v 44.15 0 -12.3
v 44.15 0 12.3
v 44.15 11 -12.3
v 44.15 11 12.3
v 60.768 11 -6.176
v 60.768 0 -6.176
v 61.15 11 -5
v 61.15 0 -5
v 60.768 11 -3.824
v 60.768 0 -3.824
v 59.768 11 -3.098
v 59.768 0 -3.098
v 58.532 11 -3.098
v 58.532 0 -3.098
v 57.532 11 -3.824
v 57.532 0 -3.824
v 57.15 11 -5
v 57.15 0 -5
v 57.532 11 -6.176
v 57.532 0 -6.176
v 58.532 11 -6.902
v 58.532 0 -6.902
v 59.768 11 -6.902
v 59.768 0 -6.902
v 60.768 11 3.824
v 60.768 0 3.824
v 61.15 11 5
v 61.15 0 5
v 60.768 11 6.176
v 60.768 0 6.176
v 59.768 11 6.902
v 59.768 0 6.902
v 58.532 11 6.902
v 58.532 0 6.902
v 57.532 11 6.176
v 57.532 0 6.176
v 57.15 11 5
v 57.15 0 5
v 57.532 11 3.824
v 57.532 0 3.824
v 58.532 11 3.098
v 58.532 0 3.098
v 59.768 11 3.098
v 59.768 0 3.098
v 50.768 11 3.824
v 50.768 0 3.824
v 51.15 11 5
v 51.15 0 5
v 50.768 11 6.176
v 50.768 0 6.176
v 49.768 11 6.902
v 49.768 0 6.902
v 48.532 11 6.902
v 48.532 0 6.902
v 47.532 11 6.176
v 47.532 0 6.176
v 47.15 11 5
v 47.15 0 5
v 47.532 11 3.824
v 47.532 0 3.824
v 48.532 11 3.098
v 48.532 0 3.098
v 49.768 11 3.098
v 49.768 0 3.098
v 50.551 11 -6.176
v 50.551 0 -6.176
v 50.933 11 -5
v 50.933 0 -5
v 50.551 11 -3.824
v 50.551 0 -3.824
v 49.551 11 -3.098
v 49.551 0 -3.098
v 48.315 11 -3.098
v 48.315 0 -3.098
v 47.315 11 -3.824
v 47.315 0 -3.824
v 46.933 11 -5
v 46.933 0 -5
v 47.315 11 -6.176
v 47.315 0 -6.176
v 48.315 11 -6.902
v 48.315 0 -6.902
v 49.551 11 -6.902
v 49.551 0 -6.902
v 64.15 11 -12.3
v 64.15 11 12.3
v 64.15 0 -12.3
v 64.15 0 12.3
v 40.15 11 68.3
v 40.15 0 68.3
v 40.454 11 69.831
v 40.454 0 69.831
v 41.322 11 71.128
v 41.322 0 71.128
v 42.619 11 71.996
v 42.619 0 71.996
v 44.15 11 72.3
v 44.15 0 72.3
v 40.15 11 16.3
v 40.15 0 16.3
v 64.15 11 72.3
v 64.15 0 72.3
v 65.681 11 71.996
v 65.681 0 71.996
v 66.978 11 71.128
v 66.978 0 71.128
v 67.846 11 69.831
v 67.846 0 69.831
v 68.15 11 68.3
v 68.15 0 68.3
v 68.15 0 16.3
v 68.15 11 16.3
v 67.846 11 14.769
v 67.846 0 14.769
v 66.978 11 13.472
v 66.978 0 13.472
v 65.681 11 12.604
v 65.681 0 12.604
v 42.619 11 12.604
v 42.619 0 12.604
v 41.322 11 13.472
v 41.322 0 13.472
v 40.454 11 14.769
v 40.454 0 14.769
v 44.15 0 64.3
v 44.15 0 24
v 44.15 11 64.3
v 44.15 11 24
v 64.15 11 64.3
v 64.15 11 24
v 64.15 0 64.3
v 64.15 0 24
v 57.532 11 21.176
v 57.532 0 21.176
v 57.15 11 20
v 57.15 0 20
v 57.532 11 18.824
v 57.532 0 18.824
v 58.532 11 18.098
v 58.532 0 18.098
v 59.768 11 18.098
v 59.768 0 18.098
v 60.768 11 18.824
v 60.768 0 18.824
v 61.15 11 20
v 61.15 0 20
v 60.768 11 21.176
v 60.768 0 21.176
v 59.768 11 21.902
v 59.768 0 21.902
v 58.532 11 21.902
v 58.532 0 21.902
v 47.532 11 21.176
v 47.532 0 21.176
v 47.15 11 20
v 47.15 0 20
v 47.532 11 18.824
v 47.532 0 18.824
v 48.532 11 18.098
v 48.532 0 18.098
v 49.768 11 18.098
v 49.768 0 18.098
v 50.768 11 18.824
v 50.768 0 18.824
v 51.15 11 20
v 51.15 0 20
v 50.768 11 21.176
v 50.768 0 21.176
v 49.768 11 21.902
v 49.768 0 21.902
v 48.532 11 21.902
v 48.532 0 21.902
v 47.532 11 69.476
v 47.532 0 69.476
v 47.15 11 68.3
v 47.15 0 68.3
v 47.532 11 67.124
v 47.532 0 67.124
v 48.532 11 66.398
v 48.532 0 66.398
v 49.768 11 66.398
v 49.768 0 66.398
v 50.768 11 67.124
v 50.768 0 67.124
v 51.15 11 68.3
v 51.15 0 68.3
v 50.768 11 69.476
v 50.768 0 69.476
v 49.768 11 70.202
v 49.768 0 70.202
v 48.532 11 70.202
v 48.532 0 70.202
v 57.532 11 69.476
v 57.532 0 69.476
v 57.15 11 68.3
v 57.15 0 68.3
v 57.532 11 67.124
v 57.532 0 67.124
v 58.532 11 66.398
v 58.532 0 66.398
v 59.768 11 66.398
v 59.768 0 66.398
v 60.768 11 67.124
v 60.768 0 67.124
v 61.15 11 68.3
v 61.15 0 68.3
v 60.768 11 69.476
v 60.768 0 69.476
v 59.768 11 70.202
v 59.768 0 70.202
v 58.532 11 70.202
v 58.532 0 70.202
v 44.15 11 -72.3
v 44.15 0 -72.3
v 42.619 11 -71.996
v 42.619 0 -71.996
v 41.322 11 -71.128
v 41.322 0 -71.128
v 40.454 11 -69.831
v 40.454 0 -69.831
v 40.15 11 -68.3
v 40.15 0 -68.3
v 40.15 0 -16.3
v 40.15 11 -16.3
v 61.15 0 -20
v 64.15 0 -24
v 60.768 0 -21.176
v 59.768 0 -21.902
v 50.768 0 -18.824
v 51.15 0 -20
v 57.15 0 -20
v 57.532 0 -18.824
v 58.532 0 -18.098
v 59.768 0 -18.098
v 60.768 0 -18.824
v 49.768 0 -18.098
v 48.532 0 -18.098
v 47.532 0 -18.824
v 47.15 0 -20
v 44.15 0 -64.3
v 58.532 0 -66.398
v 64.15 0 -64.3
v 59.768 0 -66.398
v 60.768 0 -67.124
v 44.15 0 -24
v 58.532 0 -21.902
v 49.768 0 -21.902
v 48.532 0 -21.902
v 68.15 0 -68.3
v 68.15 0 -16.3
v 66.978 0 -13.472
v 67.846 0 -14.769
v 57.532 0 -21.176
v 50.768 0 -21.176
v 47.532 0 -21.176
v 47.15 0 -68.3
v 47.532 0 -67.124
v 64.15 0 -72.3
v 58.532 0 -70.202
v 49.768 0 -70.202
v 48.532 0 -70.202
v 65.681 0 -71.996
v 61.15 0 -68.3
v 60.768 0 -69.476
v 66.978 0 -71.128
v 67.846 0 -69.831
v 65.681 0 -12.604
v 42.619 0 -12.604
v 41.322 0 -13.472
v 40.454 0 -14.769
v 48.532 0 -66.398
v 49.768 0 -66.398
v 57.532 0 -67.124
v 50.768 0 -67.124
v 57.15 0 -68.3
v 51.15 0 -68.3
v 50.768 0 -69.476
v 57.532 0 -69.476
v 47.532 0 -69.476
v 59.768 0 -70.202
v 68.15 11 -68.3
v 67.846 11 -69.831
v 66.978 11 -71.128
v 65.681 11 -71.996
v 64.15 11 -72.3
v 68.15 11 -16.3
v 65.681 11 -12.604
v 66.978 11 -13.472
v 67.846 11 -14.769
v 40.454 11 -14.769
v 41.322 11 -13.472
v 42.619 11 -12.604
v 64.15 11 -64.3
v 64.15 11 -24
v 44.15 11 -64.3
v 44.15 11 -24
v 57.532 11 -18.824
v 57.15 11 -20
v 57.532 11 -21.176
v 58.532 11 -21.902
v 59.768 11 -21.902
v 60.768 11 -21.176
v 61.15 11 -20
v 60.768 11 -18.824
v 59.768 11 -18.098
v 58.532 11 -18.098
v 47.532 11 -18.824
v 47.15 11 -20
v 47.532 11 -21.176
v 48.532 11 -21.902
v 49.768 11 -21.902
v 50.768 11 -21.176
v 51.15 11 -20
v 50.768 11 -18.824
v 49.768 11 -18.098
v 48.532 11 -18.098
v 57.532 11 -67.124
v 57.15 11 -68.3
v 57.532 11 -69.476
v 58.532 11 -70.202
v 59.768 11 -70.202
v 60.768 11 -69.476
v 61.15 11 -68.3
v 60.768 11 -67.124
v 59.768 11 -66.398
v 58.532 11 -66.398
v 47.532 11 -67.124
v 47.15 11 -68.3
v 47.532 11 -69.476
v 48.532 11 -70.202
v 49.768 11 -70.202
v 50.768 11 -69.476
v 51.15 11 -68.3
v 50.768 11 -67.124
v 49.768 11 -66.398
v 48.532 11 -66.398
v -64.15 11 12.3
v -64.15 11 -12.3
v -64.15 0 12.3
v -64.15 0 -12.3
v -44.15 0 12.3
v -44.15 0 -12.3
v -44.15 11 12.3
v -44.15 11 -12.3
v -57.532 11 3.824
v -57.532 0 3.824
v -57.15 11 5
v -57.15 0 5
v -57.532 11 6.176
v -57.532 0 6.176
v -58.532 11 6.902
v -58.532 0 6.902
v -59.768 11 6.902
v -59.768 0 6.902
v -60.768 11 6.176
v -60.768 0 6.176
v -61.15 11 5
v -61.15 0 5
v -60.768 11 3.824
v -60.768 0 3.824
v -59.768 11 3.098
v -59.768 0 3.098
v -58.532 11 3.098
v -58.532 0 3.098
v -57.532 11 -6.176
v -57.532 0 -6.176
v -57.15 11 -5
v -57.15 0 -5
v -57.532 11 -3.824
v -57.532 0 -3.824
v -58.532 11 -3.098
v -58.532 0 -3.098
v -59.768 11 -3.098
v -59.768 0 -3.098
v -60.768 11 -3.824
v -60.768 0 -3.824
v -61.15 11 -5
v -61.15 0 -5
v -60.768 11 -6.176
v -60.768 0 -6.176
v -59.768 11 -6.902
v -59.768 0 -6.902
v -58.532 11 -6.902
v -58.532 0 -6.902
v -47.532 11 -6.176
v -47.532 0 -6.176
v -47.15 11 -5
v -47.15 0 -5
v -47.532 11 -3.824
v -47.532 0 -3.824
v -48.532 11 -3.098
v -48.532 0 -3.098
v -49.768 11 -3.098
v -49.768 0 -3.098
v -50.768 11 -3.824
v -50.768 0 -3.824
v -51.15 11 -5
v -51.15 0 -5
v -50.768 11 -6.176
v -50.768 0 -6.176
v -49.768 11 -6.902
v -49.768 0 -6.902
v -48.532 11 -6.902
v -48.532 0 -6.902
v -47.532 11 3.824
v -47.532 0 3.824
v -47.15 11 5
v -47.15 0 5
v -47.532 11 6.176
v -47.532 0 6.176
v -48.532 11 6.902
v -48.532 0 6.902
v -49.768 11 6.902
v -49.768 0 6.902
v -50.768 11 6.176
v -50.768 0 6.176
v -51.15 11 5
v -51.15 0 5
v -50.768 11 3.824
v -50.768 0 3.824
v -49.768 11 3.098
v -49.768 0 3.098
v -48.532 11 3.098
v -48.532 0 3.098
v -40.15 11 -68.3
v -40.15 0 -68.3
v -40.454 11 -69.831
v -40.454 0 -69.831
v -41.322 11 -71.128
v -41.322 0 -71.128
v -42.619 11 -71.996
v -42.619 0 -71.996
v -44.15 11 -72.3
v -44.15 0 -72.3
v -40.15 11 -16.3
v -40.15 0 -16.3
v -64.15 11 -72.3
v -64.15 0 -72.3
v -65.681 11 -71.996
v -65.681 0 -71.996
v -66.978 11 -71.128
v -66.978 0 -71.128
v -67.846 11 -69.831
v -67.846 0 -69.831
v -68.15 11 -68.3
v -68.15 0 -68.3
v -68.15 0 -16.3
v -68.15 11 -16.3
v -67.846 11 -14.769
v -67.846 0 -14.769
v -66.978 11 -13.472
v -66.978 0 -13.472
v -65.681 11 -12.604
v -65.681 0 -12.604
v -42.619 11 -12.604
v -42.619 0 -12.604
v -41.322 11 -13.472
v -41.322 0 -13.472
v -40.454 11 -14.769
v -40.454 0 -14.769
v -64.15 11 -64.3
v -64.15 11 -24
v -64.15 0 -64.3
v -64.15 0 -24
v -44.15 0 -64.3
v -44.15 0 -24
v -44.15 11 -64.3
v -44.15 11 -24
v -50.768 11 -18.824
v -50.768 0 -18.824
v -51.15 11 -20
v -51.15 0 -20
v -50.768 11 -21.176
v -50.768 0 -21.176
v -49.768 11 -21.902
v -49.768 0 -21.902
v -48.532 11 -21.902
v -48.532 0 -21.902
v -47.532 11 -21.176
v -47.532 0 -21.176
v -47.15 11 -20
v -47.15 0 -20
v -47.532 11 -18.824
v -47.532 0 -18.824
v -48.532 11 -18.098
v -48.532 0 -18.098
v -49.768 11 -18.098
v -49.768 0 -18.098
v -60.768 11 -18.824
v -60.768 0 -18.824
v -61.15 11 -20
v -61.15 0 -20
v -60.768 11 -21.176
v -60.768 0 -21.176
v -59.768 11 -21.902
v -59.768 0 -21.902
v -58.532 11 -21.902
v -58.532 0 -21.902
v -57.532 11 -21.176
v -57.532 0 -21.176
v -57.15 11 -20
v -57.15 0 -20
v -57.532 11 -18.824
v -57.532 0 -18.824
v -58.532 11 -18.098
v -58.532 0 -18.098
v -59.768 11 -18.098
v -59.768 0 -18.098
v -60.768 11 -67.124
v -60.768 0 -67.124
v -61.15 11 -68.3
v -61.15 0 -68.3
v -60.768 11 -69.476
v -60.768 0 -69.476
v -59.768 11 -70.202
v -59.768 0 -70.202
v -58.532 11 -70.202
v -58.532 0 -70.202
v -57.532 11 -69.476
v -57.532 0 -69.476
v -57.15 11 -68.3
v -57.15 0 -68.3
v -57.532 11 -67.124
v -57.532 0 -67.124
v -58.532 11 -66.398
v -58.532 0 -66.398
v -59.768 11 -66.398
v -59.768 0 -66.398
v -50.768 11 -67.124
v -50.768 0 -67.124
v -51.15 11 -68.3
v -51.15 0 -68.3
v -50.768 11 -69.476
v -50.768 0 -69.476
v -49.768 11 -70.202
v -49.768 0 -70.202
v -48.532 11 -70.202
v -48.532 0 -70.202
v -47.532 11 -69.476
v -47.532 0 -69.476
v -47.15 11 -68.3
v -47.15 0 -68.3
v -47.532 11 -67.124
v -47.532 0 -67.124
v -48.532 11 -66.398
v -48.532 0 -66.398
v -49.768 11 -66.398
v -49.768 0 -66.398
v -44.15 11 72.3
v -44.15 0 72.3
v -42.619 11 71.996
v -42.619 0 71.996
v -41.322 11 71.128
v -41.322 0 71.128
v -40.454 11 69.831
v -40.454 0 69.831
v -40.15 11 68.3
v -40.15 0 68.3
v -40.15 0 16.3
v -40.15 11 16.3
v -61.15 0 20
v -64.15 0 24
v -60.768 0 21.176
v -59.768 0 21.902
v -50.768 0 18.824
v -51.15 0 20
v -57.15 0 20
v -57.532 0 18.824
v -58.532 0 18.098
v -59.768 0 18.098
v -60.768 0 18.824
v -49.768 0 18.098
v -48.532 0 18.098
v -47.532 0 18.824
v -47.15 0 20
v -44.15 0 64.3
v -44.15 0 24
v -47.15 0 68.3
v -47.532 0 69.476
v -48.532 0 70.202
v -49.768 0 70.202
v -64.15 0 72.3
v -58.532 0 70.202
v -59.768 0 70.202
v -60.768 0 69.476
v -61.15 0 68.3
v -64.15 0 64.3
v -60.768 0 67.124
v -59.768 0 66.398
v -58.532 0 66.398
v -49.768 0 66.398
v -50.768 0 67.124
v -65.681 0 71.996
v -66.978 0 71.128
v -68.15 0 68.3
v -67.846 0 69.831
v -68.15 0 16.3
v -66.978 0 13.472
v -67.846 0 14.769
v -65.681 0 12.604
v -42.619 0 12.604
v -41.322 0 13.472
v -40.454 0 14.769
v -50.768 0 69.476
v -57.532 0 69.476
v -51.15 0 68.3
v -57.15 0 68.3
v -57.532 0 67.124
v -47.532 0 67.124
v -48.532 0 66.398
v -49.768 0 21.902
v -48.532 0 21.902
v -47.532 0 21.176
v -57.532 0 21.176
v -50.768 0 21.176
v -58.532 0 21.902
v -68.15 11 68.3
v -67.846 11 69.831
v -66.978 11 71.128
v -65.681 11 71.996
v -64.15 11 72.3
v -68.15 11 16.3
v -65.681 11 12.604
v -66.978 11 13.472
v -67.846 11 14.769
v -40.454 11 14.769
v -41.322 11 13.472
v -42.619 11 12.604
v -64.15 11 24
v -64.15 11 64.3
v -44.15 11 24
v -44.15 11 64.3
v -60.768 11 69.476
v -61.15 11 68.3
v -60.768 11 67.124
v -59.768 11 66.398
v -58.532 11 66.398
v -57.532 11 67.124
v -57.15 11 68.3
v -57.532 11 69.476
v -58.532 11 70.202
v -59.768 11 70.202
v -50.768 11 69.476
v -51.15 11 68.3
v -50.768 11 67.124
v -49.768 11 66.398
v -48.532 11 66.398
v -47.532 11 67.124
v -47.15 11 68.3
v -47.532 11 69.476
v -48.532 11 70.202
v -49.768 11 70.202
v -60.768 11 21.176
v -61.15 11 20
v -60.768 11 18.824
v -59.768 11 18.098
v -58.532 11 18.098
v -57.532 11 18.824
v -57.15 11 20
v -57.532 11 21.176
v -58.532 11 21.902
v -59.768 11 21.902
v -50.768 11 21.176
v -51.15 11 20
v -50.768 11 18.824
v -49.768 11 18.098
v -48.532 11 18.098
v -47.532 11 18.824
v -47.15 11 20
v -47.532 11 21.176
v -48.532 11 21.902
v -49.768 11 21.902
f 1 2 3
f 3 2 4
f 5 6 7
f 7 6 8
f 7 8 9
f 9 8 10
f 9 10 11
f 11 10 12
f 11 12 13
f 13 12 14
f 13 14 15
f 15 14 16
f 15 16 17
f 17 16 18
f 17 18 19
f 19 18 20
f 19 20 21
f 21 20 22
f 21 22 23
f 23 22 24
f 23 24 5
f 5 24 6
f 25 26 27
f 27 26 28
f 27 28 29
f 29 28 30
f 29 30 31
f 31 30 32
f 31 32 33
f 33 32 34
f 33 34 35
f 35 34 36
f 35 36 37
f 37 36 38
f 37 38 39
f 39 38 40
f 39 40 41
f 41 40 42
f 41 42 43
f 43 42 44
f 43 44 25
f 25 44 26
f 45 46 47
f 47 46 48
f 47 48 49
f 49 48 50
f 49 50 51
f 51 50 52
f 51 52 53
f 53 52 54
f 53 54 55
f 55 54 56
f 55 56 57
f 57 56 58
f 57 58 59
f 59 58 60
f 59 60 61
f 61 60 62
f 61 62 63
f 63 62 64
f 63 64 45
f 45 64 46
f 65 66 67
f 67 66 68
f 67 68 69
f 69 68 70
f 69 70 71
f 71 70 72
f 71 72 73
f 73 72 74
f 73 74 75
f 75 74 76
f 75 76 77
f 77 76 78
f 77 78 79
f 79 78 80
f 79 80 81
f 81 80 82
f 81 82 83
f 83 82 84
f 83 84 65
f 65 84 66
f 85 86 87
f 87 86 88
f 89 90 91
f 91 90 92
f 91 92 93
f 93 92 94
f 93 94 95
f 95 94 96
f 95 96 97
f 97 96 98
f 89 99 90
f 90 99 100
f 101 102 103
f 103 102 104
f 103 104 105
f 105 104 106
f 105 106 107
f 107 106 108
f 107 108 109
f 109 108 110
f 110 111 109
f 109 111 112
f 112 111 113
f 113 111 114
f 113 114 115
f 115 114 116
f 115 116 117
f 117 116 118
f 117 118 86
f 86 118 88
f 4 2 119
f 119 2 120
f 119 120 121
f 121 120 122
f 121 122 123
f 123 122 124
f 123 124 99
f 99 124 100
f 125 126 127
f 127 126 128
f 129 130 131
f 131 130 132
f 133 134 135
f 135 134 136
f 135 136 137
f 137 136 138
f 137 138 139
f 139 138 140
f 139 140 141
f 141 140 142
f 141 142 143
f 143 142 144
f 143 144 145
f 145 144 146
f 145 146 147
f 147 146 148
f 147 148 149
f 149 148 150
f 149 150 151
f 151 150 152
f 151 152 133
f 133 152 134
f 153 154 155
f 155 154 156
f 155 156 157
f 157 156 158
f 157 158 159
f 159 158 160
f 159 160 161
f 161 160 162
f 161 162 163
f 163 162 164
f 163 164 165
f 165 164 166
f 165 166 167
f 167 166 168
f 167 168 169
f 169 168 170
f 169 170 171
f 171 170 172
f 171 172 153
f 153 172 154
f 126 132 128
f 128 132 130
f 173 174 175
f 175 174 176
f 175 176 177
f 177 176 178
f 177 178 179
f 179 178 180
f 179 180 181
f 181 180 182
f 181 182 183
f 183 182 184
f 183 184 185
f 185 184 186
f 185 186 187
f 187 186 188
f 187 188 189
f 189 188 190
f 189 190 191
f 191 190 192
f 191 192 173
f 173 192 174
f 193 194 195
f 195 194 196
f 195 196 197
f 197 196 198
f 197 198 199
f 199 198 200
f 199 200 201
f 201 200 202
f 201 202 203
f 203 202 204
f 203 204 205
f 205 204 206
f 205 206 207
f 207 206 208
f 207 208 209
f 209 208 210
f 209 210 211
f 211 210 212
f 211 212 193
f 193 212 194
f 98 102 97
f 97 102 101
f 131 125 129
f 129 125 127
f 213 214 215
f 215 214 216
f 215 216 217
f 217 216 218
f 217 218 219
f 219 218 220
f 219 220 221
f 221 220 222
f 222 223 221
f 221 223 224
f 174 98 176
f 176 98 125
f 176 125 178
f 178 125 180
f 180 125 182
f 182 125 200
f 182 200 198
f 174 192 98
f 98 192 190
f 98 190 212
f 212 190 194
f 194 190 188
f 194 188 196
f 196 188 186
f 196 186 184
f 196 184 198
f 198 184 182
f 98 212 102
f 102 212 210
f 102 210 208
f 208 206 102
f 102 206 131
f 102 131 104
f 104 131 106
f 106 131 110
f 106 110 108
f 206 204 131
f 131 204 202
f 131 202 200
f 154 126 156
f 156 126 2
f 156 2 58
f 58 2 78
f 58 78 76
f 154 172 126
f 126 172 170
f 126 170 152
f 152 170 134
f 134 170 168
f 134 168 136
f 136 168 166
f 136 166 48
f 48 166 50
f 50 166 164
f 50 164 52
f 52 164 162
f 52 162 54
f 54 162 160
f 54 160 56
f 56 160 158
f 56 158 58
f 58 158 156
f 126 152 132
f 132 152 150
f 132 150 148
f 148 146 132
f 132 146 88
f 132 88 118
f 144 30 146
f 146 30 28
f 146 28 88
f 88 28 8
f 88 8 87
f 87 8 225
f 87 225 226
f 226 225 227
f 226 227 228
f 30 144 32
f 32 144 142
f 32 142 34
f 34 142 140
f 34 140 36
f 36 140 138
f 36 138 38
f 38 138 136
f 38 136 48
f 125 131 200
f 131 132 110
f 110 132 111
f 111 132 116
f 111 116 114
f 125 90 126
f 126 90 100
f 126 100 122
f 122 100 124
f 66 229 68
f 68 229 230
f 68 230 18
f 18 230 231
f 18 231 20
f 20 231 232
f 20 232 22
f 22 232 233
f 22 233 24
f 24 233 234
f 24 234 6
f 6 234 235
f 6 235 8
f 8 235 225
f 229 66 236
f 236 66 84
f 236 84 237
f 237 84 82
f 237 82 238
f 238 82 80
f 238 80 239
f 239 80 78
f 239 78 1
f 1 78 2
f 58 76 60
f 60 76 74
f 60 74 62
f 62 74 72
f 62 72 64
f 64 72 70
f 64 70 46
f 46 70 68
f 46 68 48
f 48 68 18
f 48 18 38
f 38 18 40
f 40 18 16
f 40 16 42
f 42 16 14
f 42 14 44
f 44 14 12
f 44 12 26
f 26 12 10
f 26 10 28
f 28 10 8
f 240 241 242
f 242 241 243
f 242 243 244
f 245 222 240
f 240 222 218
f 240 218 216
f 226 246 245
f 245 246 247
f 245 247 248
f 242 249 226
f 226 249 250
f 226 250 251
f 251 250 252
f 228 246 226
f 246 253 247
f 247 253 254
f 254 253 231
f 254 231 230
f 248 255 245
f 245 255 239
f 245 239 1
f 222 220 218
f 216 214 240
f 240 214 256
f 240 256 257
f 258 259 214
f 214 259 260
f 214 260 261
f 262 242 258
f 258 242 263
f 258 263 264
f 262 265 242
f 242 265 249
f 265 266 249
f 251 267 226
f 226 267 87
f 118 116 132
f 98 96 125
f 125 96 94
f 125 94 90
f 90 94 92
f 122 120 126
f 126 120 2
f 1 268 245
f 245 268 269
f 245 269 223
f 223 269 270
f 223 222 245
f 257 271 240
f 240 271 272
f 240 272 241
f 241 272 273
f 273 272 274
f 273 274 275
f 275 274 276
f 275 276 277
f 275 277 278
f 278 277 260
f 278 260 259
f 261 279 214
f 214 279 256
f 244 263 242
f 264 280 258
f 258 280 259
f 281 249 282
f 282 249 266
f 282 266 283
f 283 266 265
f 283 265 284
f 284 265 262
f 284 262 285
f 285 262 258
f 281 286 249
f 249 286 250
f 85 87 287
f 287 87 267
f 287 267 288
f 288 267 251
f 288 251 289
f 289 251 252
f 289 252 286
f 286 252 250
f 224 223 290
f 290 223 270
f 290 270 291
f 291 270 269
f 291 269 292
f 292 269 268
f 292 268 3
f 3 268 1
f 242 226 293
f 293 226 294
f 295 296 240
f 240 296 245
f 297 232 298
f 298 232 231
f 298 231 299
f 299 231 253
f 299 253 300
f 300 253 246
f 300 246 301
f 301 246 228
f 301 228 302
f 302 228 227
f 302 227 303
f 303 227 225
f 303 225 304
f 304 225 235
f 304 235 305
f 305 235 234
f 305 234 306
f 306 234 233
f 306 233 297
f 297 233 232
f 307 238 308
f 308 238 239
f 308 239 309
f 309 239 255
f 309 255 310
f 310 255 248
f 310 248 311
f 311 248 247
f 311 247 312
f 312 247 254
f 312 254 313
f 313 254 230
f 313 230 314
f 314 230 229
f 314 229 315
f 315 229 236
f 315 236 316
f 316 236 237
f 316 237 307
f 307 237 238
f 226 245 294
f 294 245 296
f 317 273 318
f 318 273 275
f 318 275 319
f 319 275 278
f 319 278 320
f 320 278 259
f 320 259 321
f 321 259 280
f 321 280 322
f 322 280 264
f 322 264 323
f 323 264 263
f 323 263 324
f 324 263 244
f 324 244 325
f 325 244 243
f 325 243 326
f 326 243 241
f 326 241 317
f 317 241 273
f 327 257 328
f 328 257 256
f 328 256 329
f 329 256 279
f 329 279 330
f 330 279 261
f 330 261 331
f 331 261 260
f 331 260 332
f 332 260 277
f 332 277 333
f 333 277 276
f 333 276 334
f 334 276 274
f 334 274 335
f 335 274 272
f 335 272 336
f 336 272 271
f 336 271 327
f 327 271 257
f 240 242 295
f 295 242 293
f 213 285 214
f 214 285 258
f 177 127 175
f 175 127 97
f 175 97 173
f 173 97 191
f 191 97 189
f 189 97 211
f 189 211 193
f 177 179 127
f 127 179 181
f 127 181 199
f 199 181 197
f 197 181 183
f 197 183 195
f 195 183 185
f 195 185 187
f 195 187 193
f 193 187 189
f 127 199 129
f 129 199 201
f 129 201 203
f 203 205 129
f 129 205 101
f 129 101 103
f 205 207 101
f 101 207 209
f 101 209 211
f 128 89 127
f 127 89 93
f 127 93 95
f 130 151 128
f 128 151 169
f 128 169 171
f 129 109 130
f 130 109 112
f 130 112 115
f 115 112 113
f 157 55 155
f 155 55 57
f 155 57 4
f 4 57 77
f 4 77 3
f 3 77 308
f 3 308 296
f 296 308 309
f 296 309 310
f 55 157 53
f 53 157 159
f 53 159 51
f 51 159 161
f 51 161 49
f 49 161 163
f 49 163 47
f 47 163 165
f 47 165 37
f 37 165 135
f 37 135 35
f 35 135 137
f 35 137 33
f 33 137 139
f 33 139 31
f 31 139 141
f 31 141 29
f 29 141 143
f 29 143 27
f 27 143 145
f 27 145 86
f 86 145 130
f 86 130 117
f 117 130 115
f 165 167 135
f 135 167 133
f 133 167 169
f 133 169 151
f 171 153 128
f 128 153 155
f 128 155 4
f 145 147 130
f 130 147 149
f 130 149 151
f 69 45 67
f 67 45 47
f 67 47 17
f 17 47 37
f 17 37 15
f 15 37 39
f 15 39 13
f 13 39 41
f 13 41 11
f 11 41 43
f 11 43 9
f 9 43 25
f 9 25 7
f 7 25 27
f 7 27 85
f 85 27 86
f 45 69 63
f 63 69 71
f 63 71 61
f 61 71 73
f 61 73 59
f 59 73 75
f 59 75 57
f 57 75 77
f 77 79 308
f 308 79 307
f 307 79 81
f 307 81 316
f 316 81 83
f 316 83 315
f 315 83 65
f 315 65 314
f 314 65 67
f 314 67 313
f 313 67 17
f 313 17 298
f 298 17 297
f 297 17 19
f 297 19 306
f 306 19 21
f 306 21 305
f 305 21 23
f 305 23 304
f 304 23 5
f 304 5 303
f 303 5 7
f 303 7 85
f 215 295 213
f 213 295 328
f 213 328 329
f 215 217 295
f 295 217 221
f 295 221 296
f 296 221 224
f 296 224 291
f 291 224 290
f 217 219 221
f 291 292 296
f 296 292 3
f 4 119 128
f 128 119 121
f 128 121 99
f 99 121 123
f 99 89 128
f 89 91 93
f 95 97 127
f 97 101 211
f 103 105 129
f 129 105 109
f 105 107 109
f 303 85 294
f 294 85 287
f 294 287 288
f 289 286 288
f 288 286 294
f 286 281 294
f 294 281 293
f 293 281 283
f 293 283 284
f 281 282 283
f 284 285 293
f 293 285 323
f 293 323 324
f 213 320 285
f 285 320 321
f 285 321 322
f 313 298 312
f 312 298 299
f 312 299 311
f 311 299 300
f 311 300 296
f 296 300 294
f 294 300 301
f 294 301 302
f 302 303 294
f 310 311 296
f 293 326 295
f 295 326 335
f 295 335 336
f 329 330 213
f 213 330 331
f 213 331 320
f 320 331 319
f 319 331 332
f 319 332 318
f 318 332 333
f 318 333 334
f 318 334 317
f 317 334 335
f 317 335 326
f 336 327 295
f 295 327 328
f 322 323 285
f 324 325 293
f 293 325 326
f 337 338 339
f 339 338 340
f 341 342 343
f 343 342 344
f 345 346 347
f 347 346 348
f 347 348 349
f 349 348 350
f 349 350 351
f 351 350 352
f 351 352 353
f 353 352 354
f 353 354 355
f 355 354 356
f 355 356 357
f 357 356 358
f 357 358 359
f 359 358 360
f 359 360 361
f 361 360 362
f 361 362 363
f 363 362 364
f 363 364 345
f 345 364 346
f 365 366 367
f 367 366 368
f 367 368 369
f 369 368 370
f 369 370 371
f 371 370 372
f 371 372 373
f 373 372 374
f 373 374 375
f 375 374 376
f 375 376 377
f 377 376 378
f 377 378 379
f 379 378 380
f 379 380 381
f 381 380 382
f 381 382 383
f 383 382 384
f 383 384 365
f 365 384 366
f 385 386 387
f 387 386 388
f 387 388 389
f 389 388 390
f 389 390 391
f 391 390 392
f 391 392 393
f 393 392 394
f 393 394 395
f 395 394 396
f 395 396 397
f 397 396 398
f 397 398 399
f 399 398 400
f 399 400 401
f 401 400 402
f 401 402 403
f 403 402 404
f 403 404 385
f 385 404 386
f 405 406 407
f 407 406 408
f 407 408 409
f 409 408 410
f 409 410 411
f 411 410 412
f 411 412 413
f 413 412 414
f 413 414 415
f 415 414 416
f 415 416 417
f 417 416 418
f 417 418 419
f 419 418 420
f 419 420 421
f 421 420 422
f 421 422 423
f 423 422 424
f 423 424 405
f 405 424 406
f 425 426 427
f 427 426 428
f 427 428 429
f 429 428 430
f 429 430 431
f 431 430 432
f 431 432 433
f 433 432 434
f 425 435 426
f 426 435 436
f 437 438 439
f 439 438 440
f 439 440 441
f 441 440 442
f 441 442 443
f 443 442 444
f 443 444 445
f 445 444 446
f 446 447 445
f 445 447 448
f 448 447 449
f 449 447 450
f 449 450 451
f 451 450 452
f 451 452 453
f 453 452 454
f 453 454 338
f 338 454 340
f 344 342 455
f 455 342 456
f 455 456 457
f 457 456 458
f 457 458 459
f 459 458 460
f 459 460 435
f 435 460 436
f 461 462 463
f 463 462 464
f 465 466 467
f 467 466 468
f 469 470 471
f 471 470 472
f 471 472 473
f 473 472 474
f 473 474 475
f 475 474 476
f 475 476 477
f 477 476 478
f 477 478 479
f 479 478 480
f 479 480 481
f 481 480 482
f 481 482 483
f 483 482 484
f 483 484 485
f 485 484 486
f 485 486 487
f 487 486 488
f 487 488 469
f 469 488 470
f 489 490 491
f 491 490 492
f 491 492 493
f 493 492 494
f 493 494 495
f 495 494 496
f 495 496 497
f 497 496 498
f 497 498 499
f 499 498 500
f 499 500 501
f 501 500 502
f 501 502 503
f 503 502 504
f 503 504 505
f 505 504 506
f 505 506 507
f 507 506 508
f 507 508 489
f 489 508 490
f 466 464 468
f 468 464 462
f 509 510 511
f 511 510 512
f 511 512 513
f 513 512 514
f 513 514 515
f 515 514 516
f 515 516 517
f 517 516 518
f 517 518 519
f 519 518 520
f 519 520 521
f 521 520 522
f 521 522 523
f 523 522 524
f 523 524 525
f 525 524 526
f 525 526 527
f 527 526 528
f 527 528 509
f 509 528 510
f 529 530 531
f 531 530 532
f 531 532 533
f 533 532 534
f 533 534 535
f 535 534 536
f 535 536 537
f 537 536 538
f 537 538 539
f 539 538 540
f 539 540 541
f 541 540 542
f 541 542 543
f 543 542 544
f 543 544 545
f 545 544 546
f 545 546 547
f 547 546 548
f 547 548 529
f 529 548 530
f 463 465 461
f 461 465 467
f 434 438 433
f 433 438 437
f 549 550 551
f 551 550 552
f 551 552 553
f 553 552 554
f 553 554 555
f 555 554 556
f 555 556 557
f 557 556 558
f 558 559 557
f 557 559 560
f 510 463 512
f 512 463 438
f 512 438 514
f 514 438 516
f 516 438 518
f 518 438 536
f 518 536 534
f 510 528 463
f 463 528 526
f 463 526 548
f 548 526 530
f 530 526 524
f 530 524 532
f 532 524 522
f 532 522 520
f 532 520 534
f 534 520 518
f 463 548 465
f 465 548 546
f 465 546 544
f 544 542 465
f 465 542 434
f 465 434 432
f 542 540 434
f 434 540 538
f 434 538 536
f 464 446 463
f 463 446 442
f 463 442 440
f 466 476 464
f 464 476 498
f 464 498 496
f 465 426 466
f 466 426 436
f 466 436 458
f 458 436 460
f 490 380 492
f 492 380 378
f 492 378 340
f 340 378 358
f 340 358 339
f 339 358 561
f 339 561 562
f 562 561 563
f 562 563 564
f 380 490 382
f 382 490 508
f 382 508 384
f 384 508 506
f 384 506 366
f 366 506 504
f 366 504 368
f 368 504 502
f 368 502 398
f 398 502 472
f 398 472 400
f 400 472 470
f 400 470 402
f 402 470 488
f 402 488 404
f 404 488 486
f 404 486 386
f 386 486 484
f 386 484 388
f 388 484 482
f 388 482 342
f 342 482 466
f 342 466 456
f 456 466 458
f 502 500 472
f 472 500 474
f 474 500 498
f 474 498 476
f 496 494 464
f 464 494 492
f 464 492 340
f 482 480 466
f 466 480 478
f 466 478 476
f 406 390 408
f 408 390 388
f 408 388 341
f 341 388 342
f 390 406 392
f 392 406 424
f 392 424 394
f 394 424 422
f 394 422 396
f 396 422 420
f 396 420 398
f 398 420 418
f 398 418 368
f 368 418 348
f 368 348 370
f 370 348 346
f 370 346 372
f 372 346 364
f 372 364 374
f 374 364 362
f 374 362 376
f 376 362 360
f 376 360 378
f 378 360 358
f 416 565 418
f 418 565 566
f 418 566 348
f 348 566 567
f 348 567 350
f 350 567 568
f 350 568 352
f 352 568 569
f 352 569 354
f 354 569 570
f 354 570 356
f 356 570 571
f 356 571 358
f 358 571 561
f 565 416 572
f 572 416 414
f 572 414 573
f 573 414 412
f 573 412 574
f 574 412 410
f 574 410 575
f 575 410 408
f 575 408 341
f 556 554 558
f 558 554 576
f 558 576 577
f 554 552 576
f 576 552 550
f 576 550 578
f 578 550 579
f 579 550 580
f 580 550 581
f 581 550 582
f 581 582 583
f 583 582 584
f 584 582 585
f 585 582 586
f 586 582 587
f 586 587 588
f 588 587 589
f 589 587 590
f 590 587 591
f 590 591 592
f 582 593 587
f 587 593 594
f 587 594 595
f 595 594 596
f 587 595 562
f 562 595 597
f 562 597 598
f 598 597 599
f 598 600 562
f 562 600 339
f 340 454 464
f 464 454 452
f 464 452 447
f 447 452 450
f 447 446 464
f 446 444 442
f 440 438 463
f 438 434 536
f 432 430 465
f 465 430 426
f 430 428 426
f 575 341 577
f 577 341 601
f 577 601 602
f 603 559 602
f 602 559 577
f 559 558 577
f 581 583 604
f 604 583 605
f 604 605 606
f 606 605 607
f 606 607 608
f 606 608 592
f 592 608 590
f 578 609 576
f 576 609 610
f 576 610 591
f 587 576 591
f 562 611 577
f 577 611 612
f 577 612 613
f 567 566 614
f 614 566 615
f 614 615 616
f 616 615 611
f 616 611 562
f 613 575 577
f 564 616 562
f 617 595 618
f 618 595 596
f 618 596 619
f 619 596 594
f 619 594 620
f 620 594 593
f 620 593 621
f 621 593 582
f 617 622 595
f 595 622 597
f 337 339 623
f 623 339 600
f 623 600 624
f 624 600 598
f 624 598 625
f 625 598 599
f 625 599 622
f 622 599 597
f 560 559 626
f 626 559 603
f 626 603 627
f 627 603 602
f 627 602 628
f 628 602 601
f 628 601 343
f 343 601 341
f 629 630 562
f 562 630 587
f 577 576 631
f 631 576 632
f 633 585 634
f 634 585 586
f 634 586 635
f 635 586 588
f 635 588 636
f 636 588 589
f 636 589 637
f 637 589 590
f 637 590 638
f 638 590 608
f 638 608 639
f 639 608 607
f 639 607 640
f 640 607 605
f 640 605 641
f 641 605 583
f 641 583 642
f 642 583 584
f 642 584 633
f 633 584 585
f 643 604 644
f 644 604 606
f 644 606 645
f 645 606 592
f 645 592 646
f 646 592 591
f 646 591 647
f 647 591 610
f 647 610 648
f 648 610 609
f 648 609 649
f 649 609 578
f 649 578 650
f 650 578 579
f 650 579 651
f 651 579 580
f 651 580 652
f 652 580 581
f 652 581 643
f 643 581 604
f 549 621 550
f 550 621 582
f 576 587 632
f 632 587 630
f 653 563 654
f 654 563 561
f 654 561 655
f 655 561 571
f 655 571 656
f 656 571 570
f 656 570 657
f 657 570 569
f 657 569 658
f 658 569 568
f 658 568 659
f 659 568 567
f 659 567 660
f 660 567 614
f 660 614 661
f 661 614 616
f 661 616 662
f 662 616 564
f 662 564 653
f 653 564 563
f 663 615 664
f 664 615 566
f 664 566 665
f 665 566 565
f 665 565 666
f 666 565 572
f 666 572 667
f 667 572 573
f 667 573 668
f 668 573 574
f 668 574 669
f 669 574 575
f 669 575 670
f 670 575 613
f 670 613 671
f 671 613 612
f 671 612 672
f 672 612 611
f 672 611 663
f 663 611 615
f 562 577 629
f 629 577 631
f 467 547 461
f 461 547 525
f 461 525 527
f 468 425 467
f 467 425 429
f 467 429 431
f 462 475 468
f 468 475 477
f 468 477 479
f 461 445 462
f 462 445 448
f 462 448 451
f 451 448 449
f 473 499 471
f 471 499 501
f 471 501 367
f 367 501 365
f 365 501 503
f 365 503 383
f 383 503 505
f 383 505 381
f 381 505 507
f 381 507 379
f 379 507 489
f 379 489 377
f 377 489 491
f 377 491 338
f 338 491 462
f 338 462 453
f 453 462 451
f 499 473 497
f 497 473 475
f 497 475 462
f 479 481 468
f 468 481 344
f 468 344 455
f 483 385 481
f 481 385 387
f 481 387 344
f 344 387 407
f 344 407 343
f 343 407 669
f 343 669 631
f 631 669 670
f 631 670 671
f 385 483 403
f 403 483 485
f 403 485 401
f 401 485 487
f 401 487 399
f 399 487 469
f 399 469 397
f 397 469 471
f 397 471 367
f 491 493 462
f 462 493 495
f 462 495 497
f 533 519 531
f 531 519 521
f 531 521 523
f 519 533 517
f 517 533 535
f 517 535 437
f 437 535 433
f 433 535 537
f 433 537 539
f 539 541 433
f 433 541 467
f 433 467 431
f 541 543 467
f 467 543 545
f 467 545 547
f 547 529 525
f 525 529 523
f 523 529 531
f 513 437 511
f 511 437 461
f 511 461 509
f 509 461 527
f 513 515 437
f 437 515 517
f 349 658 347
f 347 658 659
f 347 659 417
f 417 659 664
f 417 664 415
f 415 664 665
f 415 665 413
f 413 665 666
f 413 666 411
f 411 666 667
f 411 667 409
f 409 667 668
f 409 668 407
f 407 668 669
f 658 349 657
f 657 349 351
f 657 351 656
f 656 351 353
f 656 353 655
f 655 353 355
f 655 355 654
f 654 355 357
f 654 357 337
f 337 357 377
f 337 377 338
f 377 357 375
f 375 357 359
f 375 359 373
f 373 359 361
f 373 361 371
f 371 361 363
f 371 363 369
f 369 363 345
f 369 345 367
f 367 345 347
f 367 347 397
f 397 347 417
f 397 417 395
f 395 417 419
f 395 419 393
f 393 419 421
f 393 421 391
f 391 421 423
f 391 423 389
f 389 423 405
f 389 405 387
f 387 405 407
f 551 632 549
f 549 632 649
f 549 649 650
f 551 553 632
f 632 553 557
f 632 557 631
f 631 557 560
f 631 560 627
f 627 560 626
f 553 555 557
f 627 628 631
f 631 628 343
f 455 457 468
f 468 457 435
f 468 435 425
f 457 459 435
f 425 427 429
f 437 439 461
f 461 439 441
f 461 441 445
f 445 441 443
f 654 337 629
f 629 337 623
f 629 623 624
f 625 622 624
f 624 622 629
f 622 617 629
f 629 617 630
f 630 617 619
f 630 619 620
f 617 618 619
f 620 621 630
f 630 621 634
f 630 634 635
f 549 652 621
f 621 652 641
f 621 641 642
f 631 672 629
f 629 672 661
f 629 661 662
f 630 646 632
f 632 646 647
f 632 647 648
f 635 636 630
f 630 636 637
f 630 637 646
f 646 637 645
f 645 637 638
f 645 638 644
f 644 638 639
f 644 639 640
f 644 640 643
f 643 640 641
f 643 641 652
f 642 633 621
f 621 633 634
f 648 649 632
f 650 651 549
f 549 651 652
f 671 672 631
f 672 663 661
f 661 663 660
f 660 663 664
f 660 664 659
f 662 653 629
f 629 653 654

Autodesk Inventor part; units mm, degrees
ref_plane "YZ Plane" through (0, 0, 0) normal (1, 0, 0) x (0, 1, 0)
ref_plane "XZ Plane" through (0, 0, 0) normal (0, 1, 0) x (-1, 0, 0)
ref_plane "XY Plane" through (0, 0, 0) normal (0, 0, 1) x (1, 0, 0)
sketch "Sketch1" plane through (0, 0, 0) normal (0, 1, 0) x (-1, 0, 0)
  line L0 (0, 0) -> (54.15, 0)
  line L1 (54.15, 20) -> (54.15, -20)
  line L2 (49.15, -20) -> (59.15, -20)
  circle A0 centre (59.15, -20) radius 2
  circle A1 centre (49.15, -20) radius 2
  line L3 (59.15, -20) -> (49.15, -20)
  line L4 (49.15, -20) -> (49.15, -68.3)
  line L5 (49.15, -68.3) -> (59.15, -68.3)
  line L6 (59.15, -68.3) -> (59.15, -20)
  circle A2 centre (59.15, -68.3) radius 2
  circle A3 centre (49.15, -68.3) radius 2
  line L7 (59.15, -20) -> (64.15, -20)
  line L8 (64.15, -20) -> (64.15, -16)
  line L9 (64.15, -16) -> (59.15, -16)
  line L10 (59.15, -16) -> (59.15, -20)
  line L11 (49.15, -20) -> (44.15, -20)
  line L12 (44.15, -20) -> (44.15, -24)
  line L13 (44.15, -24) -> (49.15, -24)
  line L14 (49.15, -24) -> (49.15, -20)
  line L15 (64.15, -16) -> (44.15, -16)
  line L16 (44.15, -16) -> (44.15, -24)
  line L17 (44.15, -24) -> (64.15, -24)
  line L18 (64.15, -24) -> (64.15, -16)
  line L19 (59.15, -68.3) -> (64.15, -68.3)
  line L20 (64.15, -68.3) -> (64.15, -72.3)
  line L21 (64.15, -72.3) -> (59.15, -72.3)
  line L22 (59.15, -72.3) -> (59.15, -68.3)
  line L23 (49.15, -68.3) -> (44.15, -68.3)
  line L24 (44.15, -68.3) -> (44.15, -64.3)
  line L25 (44.15, -64.3) -> (49.15, -64.3)
  line L26 (49.15, -64.3) -> (49.15, -68.3)
  line L27 (44.15, -64.3) -> (64.15, -64.3)
  line L28 (64.15, -64.3) -> (64.15, -72.3)
  line L29 (64.15, -72.3) -> (44.15, -72.3)
  line L30 (44.15, -72.3) -> (44.15, -64.3)
  line L31 (54.15, -20) -> (54.15, -68.3)
  line L32 (54.15, -20) -> (54.15, 20)
  line L33 (49.15, 20) -> (59.15, 20)
  circle A4 centre (59.15, 20) radius 2
  circle A5 centre (49.15, 20) radius 2
  line L34 (59.15, 20) -> (49.15, 20)
  line L35 (49.15, 20) -> (49.15, 68.3)
  line L36 (49.15, 68.3) -> (59.15, 68.3)
  line L37 (59.15, 68.3) -> (59.15, 20)
  circle A6 centre (59.15, 68.3) radius 2
  circle A7 centre (49.15, 68.3) radius 2
  line L38 (59.15, 20) -> (64.15, 20)
  line L39 (64.15, 20) -> (64.15, 16)
  line L40 (64.15, 16) -> (59.15, 16)
  line L41 (59.15, 16) -> (59.15, 20)
  line L42 (49.15, 20) -> (44.15, 20)
  line L43 (44.15, 20) -> (44.15, 24)
  line L44 (44.15, 24) -> (49.15, 24)
  line L45 (49.15, 24) -> (49.15, 20)
  line L46 (64.15, 16) -> (44.15, 16)
  line L47 (44.15, 16) -> (44.15, 24)
  line L48 (44.15, 24) -> (64.15, 24)
  line L49 (64.15, 24) -> (64.15, 16)
  line L50 (59.15, 68.3) -> (64.15, 68.3)
  line L51 (64.15, 68.3) -> (64.15, 72.3)
  line L52 (64.15, 72.3) -> (59.15, 72.3)
  line L53 (59.15, 72.3) -> (59.15, 68.3)
  line L54 (49.15, 68.3) -> (44.15, 68.3)
  line L55 (44.15, 68.3) -> (44.15, 64.3)
  line L56 (44.15, 64.3) -> (49.15, 64.3)
  line L57 (49.15, 64.3) -> (49.15, 68.3)
  line L58 (44.15, 64.3) -> (64.15, 64.3)
  line L59 (64.15, 64.3) -> (64.15, 72.3)
  line L60 (64.15, 72.3) -> (44.15, 72.3)
  line L61 (44.15, 72.3) -> (44.15, 64.3)
  line L62 (54.15, 20) -> (54.15, 68.3)
  line L63 (0, 5) -> (0, -5)
  line L64 (0, 0) -> (-54.15, 0)
  line L65 (-54.15, 20) -> (-54.15, -20)
  line L66 (-49.15, -20) -> (-59.15, -20)
  circle A8 centre (-59.15, -20) radius 2
  circle A9 centre (-49.15, -20) radius 2
  line L67 (-59.15, -20) -> (-49.15, -20)
  line L68 (-49.15, -20) -> (-49.15, -68.3)
  line L69 (-49.15, -68.3) -> (-59.15, -68.3)
  line L70 (-59.15, -68.3) -> (-59.15, -20)
  circle A10 centre (-59.15, -68.3) radius 2
  circle A11 centre (-49.15, -68.3) radius 2
  line L71 (-59.15, -20) -> (-64.15, -20)
  line L72 (-64.15, -20) -> (-64.15, -16)
  line L73 (-64.15, -16) -> (-59.15, -16)
  line L74 (-59.15, -16) -> (-59.15, -20)
  line L75 (-49.15, -20) -> (-44.15, -20)
  line L76 (-44.15, -20) -> (-44.15, -24)
  line L77 (-44.15, -24) -> (-49.15, -24)
  line L78 (-49.15, -24) -> (-49.15, -20)
  line L79 (-64.15, -16) -> (-44.15, -16)
  line L80 (-44.15, -16) -> (-44.15, -24)
  line L81 (-44.15, -24) -> (-64.15, -24)
  line L82 (-64.15, -24) -> (-64.15, -16)
  line L83 (-59.15, -68.3) -> (-64.15, -68.3)
  line L84 (-64.15, -68.3) -> (-64.15, -72.3)
  line L85 (-64.15, -72.3) -> (-59.15, -72.3)
  line L86 (-59.15, -72.3) -> (-59.15, -68.3)
  line L87 (-49.15, -68.3) -> (-44.15, -68.3)
  line L88 (-44.15, -68.3) -> (-44.15, -64.3)
  line L89 (-44.15, -64.3) -> (-49.15, -64.3)
  line L90 (-49.15, -64.3) -> (-49.15, -68.3)
  line L91 (-44.15, -64.3) -> (-64.15, -64.3)
  line L92 (-64.15, -64.3) -> (-64.15, -72.3)
  line L93 (-64.15, -72.3) -> (-44.15, -72.3)
  line L94 (-44.15, -72.3) -> (-44.15, -64.3)
  line L95 (-54.15, -20) -> (-54.15, -68.3)
  circle A12 centre (-59.15, 20) radius 2
  line L96 (-64.15, 16) -> (-44.15, 16)
  line L97 (-44.15, 16) -> (-44.15, 24)
  circle A13 centre (-49.15, 20) radius 2
  line L98 (-49.15, 20) -> (-59.15, 20)
  line L99 (-59.15, 20) -> (-49.15, 20)
  line L100 (-44.15, 24) -> (-64.15, 24)
  line L101 (-44.15, 24) -> (-49.15, 24)
  line L102 (-44.15, 20) -> (-44.15, 24)
  line L103 (-59.15, 68.3) -> (-59.15, 20)
  line L104 (-54.15, 20) -> (-54.15, 68.3)
  line L105 (-49.15, 20) -> (-49.15, 68.3)
  line L106 (-49.15, 24) -> (-49.15, 20)
  line L107 (-59.15, 20) -> (-64.15, 20)
  line L108 (-59.15, 16) -> (-59.15, 20)
  line L109 (-64.15, 24) -> (-64.15, 16)
  line L110 (-64.15, 20) -> (-64.15, 16)
  line L111 (-64.15, 16) -> (-59.15, 16)
  line L112 (-49.15, 68.3) -> (-59.15, 68.3)
  circle A14 centre (-59.15, 68.3) radius 2
  circle A15 centre (-49.15, 68.3) radius 2
  line L113 (-44.15, 64.3) -> (-49.15, 64.3)
  line L114 (-44.15, 64.3) -> (-64.15, 64.3)
  line L115 (-44.15, 68.3) -> (-44.15, 64.3)
  line L116 (-49.15, 64.3) -> (-49.15, 68.3)
  line L117 (-59.15, 68.3) -> (-64.15, 68.3)
  line L118 (-44.15, 72.3) -> (-44.15, 64.3)
  line L119 (-59.15, 72.3) -> (-59.15, 68.3)
  line L120 (-64.15, 64.3) -> (-64.15, 72.3)
  line L121 (-64.15, 68.3) -> (-64.15, 72.3)
  line L122 (-64.15, 72.3) -> (-59.15, 72.3)
  line L123 (-64.15, 72.3) -> (-44.15, 72.3)
  line L124 (-49.15, 68.3) -> (-44.15, 68.3)
  line L125 (-49.15, 20) -> (-44.15, 20)
  line L126 (-54.15, -20) -> (-54.15, 20)
  point P0 (64.15, -20)
  point P1 (-49.15, 24)
  point P2 (-64.15, 20)
  dimension "d0" = 54.15
  dimension "d1" = 40
  dimension "d3" = 10
  dimension "d6" = 4
  dimension "d7" = 4
  dimension "d11" = 48.3
  dimension "d12" = 4
  dimension "d13" = 4
  dimension "d14" = 5
  dimension "d15" = 4
  dimension "d16" = 5
  dimension "d17" = 4
  dimension "d18" = 5
  dimension "d19" = 4
  dimension "d20" = 5
  dimension "d21" = 4
  dimension "d22" = 10
extrude "Extrusion1" add sketch "Sketch1" along normal blind 11 contours L46 L47 L42 A5 L33 L1 | L1 L33 A4 L41 L46 | L15 L10 A0 L2 L1 | L1 L2 A1 L11 L16 L15 | L79 L80 L75 A9 L66 L65 | L65 L66 A8 L74 L79 | L96 L108 A12 L98 L65 | L65 L98 A13 L125 L97 L96 | L62 L48 L37 A4 L33 | L33 A5 L35 L48 L62 | L41 A4 L38 L39 L40 | L31 L17 L4 A1 L2 | L2 A0 L6 L17 L31 | L9 L8 L7 A0 L10 | L104 L100 L105 A13 L98 | L98 A12 L103 L100 L104 | L96 L109 L107 A12 L108 | L95 L81 L70 A8 L66 | L66 A9 L68 L81 L95 | L74 A8 L71 L72 L73 | L43 L44 L35 A5 L42 | L11 A1 L4 L13 L12 | L125 A13 L105 L100 L97 | L76 L77 L68 A9 L75 | L37 L48 L49 L38 A4 | L62 L36 A6 L37 L58 | L58 L35 A7 L36 L62 | A0 L7 L18 L17 L6 | L31 L5 A3 L4 L27 | L27 L6 A2 L5 L31 | A12 L107 L109 L100 L103 | L114 L103 A14 L112 L104 | L104 L112 A15 L105 L114 | L70 L81 L82 L71 A8 | L95 L69 A10 L70 L91 | L91 L68 A11 L69 L95 | L56 L55 L54 A7 L35 | L37 A6 L50 L59 L58 | L36 A7 L54 L61 L60 L53 A6 | L4 A3 L23 L24 L25 | L27 L28 L19 A2 L6 | L5 A2 L22 L29 L30 L23 A3 | L105 A15 L124 L115 L113 | L114 L120 L117 A14 L103 | L112 A14 L119 L123 L118 L124 A15 | L89 L88 L87 A11 L68 | L70 A10 L83 L92 L91 | L69 A11 L87 L94 L93 L86 A10 | A6 L53 L52 L51 L50 | L19 L20 L21 L22 A2 | L117 L120 L122 L119 A14 | A10 L86 L85 L84 L83
sketch "Sketch4" plane through (0, 11, 0) normal (0, 1, 0) x (1, 0, 0)
  line L0 (64.15, 64.3) -> (64.15, 72.3) projected
  line L1 (64.15, 72.3) -> (68.15, 72.3)
  line L2 (68.15, 72.3) -> (68.15, 12.3)
  line L3 (68.15, 12.3) -> (64.15, 12.3)
  line L4 (64.15, 12.3) -> (64.15, 72.3)
  line L5 (44.15, 72.3) -> (44.15, 64.3) projected
  line L6 (44.15, 72.3) -> (40.15, 72.3)
  line L7 (40.15, 72.3) -> (40.15, 12.3)
  line L8 (40.15, 12.3) -> (44.15, 12.3)
  line L9 (44.15, 12.3) -> (44.15, 72.3)
  line L10 (-44.15, 64.3) -> (-44.15, 72.3) projected
  line L11 (-44.15, 72.3) -> (-40.15, 72.3)
  line L12 (-40.15, 72.3) -> (-40.15, 12.3)
  line L13 (-40.15, 12.3) -> (-44.15, 12.3)
  line L14 (-44.15, 12.3) -> (-44.15, 72.3)
  line L15 (-64.15, 72.3) -> (-64.15, 64.3) projected
  line L16 (-64.15, 72.3) -> (-68.15, 72.3)
  line L17 (-68.15, 72.3) -> (-68.15, 12.3)
  line L18 (-68.15, 12.3) -> (-64.15, 12.3)
  line L19 (-64.15, 12.3) -> (-64.15, 72.3)
  line L20 (-64.15, -72.3) -> (-44.15, -72.3) projected
  line L21 (-44.15, -72.3) -> (-40.15, -72.3)
  line L22 (-40.15, -72.3) -> (-40.15, -12.3)
  line L23 (-40.15, -12.3) -> (-44.15, -12.3)
  line L24 (-44.15, -12.3) -> (-44.15, -72.3)
  line L25 (44.15, -72.3) -> (40.15, -72.3)
  line L26 (40.15, -72.3) -> (40.15, -12.3)
  line L27 (40.15, -12.3) -> (44.15, -12.3)
  line L28 (44.15, -12.3) -> (44.15, -72.3)
  line L29 (64.15, -72.3) -> (68.15, -72.3)
  line L30 (68.15, -72.3) -> (68.15, -12.3)
  line L31 (68.15, -12.3) -> (64.15, -12.3)
  line L32 (64.15, -12.3) -> (64.15, -72.3)
  line L33 (-64.15, -72.3) -> (-68.15, -72.3)
  line L34 (-68.15, -72.3) -> (-68.15, -12.3)
  line L35 (-68.15, -12.3) -> (-64.15, -12.3)
  line L36 (-64.15, -12.3) -> (-64.15, -72.3)
  point P0 (0, 0)
  dimension "d35" = 4
  dimension "d36" = 60
  dimension "d37" = 4
  dimension "d38" = 60
  dimension "d39" = 4
  dimension "d40" = 60
  dimension "d41" = 4
  dimension "d42" = 60
  dimension "d43" = 4
  dimension "d44" = 60
extrude "Extrusion4" add sketch "Sketch4" against normal up to surface (11 mm away)
fillet "Fillet1" radius 4 16 edges at (-40.15, 5.5, 12.3) (-40.15, 5.5, -12.3) (40.15, 5.5, 12.3) (40.15, 5.5, -12.3) (68.15, 5.5, 12.3) (68.15, 5.5, -12.3) (-68.15, 5.5, 12.3) (-68.15, 5.5, -12.3) (-68.15, 5.5, 72.3) (68.15, 5.5, 72.3) (68.15, 5.5, -72.3) (-68.15, 5.5, -72.3) (-40.15, 5.5, 72.3) (-40.15, 5.5, -72.3) (40.15, 5.5, -72.3) (40.15, 5.5, 72.3)
sketch "Sketch5" plane through (0, 11, 0) normal (0, 1, 0) x (1, 0, 0)
  arc A0 (-68.15, 16.3) -> (-64.15, 12.3) centre (-64.15, 16.3) ccw projected
  line L0 (-44.15, -16) -> (-64.15, -16) projected
  line L1 (-64.15, 16.3) -> (-44.15, 16.3)
  line L2 (-44.15, 16.3) -> (-44.15, -16)
  line L3 (-44.15, -16) -> (-64.15, -16)
  line L4 (-64.15, -16) -> (-64.15, 16.3)
  line L5 (44.15, 12.3) -> (44.15, 16) projected
  line L6 (64.15, -16) -> (64.15, -12.3) projected
  line L7 (44.15, 16) -> (64.15, 16)
  line L8 (64.15, 16) -> (64.15, -16)
  line L9 (64.15, -16) -> (44.15, -16)
  line L10 (44.15, -16) -> (44.15, 16)
  line L11 (-54.15, 16.3) -> (-54.15, 0)
  line L12 (-59.15, -5) -> (-49.15, -5)
  line L13 (-49.15, -5) -> (-49.15, 5)
  line L14 (-49.15, 5) -> (-59.15, 5)
  line L15 (-59.15, 5) -> (-59.15, -5)
  line L16 (-59.15, -5) -> (-49.15, 5) construction
  line L17 (-49.15, -5) -> (-59.15, 5) construction
  circle A1 centre (-59.15, 5) radius 2
  circle A2 centre (-49.15, 5) radius 2
  circle A3 centre (-59.15, -5) radius 2
  circle A4 centre (-49.15, -5) radius 2
  line L18 (54.15, 16) -> (54.15, 0)
  line L19 (49.15, -5) -> (59.15, -5)
  line L20 (59.15, -5) -> (59.15, 5)
  line L21 (59.15, 5) -> (49.15, 5)
  line L22 (49.15, 5) -> (49.15, -5)
  line L23 (49.15, -5) -> (59.15, 5) construction
  line L24 (59.15, -5) -> (49.15, 5) construction
  circle A5 centre (48.9333, 5) radius 2
  circle A6 centre (59.15, 5) radius 2
  circle A7 centre (49.15, -5) radius 2
  circle A8 centre (59.15, -5) radius 2
  point P0 (0, 0)
  dimension "d48" = 10
  dimension "d49" = 10
  dimension "d50" = 4
  dimension "d51" = 4
  dimension "d52" = 4
  dimension "d53" = 4
  dimension "d54" = 10
  dimension "d55" = 10
  dimension "d56" = 4
  dimension "d57" = 4
  dimension "d58" = 4
  dimension "d59" = 4
extrude "Extrusion5" add sketch "Sketch5" against normal up to surface (11 mm away) contours L14 A2 L13 A4 L12 A3 L15 A1 | L0 L4 L1 L2 | L21 A6 L20 A8 L19 A7 L22 A5 | L5 L7 L8 L6 L9 L10
properties part number "robot_7_chassis"
